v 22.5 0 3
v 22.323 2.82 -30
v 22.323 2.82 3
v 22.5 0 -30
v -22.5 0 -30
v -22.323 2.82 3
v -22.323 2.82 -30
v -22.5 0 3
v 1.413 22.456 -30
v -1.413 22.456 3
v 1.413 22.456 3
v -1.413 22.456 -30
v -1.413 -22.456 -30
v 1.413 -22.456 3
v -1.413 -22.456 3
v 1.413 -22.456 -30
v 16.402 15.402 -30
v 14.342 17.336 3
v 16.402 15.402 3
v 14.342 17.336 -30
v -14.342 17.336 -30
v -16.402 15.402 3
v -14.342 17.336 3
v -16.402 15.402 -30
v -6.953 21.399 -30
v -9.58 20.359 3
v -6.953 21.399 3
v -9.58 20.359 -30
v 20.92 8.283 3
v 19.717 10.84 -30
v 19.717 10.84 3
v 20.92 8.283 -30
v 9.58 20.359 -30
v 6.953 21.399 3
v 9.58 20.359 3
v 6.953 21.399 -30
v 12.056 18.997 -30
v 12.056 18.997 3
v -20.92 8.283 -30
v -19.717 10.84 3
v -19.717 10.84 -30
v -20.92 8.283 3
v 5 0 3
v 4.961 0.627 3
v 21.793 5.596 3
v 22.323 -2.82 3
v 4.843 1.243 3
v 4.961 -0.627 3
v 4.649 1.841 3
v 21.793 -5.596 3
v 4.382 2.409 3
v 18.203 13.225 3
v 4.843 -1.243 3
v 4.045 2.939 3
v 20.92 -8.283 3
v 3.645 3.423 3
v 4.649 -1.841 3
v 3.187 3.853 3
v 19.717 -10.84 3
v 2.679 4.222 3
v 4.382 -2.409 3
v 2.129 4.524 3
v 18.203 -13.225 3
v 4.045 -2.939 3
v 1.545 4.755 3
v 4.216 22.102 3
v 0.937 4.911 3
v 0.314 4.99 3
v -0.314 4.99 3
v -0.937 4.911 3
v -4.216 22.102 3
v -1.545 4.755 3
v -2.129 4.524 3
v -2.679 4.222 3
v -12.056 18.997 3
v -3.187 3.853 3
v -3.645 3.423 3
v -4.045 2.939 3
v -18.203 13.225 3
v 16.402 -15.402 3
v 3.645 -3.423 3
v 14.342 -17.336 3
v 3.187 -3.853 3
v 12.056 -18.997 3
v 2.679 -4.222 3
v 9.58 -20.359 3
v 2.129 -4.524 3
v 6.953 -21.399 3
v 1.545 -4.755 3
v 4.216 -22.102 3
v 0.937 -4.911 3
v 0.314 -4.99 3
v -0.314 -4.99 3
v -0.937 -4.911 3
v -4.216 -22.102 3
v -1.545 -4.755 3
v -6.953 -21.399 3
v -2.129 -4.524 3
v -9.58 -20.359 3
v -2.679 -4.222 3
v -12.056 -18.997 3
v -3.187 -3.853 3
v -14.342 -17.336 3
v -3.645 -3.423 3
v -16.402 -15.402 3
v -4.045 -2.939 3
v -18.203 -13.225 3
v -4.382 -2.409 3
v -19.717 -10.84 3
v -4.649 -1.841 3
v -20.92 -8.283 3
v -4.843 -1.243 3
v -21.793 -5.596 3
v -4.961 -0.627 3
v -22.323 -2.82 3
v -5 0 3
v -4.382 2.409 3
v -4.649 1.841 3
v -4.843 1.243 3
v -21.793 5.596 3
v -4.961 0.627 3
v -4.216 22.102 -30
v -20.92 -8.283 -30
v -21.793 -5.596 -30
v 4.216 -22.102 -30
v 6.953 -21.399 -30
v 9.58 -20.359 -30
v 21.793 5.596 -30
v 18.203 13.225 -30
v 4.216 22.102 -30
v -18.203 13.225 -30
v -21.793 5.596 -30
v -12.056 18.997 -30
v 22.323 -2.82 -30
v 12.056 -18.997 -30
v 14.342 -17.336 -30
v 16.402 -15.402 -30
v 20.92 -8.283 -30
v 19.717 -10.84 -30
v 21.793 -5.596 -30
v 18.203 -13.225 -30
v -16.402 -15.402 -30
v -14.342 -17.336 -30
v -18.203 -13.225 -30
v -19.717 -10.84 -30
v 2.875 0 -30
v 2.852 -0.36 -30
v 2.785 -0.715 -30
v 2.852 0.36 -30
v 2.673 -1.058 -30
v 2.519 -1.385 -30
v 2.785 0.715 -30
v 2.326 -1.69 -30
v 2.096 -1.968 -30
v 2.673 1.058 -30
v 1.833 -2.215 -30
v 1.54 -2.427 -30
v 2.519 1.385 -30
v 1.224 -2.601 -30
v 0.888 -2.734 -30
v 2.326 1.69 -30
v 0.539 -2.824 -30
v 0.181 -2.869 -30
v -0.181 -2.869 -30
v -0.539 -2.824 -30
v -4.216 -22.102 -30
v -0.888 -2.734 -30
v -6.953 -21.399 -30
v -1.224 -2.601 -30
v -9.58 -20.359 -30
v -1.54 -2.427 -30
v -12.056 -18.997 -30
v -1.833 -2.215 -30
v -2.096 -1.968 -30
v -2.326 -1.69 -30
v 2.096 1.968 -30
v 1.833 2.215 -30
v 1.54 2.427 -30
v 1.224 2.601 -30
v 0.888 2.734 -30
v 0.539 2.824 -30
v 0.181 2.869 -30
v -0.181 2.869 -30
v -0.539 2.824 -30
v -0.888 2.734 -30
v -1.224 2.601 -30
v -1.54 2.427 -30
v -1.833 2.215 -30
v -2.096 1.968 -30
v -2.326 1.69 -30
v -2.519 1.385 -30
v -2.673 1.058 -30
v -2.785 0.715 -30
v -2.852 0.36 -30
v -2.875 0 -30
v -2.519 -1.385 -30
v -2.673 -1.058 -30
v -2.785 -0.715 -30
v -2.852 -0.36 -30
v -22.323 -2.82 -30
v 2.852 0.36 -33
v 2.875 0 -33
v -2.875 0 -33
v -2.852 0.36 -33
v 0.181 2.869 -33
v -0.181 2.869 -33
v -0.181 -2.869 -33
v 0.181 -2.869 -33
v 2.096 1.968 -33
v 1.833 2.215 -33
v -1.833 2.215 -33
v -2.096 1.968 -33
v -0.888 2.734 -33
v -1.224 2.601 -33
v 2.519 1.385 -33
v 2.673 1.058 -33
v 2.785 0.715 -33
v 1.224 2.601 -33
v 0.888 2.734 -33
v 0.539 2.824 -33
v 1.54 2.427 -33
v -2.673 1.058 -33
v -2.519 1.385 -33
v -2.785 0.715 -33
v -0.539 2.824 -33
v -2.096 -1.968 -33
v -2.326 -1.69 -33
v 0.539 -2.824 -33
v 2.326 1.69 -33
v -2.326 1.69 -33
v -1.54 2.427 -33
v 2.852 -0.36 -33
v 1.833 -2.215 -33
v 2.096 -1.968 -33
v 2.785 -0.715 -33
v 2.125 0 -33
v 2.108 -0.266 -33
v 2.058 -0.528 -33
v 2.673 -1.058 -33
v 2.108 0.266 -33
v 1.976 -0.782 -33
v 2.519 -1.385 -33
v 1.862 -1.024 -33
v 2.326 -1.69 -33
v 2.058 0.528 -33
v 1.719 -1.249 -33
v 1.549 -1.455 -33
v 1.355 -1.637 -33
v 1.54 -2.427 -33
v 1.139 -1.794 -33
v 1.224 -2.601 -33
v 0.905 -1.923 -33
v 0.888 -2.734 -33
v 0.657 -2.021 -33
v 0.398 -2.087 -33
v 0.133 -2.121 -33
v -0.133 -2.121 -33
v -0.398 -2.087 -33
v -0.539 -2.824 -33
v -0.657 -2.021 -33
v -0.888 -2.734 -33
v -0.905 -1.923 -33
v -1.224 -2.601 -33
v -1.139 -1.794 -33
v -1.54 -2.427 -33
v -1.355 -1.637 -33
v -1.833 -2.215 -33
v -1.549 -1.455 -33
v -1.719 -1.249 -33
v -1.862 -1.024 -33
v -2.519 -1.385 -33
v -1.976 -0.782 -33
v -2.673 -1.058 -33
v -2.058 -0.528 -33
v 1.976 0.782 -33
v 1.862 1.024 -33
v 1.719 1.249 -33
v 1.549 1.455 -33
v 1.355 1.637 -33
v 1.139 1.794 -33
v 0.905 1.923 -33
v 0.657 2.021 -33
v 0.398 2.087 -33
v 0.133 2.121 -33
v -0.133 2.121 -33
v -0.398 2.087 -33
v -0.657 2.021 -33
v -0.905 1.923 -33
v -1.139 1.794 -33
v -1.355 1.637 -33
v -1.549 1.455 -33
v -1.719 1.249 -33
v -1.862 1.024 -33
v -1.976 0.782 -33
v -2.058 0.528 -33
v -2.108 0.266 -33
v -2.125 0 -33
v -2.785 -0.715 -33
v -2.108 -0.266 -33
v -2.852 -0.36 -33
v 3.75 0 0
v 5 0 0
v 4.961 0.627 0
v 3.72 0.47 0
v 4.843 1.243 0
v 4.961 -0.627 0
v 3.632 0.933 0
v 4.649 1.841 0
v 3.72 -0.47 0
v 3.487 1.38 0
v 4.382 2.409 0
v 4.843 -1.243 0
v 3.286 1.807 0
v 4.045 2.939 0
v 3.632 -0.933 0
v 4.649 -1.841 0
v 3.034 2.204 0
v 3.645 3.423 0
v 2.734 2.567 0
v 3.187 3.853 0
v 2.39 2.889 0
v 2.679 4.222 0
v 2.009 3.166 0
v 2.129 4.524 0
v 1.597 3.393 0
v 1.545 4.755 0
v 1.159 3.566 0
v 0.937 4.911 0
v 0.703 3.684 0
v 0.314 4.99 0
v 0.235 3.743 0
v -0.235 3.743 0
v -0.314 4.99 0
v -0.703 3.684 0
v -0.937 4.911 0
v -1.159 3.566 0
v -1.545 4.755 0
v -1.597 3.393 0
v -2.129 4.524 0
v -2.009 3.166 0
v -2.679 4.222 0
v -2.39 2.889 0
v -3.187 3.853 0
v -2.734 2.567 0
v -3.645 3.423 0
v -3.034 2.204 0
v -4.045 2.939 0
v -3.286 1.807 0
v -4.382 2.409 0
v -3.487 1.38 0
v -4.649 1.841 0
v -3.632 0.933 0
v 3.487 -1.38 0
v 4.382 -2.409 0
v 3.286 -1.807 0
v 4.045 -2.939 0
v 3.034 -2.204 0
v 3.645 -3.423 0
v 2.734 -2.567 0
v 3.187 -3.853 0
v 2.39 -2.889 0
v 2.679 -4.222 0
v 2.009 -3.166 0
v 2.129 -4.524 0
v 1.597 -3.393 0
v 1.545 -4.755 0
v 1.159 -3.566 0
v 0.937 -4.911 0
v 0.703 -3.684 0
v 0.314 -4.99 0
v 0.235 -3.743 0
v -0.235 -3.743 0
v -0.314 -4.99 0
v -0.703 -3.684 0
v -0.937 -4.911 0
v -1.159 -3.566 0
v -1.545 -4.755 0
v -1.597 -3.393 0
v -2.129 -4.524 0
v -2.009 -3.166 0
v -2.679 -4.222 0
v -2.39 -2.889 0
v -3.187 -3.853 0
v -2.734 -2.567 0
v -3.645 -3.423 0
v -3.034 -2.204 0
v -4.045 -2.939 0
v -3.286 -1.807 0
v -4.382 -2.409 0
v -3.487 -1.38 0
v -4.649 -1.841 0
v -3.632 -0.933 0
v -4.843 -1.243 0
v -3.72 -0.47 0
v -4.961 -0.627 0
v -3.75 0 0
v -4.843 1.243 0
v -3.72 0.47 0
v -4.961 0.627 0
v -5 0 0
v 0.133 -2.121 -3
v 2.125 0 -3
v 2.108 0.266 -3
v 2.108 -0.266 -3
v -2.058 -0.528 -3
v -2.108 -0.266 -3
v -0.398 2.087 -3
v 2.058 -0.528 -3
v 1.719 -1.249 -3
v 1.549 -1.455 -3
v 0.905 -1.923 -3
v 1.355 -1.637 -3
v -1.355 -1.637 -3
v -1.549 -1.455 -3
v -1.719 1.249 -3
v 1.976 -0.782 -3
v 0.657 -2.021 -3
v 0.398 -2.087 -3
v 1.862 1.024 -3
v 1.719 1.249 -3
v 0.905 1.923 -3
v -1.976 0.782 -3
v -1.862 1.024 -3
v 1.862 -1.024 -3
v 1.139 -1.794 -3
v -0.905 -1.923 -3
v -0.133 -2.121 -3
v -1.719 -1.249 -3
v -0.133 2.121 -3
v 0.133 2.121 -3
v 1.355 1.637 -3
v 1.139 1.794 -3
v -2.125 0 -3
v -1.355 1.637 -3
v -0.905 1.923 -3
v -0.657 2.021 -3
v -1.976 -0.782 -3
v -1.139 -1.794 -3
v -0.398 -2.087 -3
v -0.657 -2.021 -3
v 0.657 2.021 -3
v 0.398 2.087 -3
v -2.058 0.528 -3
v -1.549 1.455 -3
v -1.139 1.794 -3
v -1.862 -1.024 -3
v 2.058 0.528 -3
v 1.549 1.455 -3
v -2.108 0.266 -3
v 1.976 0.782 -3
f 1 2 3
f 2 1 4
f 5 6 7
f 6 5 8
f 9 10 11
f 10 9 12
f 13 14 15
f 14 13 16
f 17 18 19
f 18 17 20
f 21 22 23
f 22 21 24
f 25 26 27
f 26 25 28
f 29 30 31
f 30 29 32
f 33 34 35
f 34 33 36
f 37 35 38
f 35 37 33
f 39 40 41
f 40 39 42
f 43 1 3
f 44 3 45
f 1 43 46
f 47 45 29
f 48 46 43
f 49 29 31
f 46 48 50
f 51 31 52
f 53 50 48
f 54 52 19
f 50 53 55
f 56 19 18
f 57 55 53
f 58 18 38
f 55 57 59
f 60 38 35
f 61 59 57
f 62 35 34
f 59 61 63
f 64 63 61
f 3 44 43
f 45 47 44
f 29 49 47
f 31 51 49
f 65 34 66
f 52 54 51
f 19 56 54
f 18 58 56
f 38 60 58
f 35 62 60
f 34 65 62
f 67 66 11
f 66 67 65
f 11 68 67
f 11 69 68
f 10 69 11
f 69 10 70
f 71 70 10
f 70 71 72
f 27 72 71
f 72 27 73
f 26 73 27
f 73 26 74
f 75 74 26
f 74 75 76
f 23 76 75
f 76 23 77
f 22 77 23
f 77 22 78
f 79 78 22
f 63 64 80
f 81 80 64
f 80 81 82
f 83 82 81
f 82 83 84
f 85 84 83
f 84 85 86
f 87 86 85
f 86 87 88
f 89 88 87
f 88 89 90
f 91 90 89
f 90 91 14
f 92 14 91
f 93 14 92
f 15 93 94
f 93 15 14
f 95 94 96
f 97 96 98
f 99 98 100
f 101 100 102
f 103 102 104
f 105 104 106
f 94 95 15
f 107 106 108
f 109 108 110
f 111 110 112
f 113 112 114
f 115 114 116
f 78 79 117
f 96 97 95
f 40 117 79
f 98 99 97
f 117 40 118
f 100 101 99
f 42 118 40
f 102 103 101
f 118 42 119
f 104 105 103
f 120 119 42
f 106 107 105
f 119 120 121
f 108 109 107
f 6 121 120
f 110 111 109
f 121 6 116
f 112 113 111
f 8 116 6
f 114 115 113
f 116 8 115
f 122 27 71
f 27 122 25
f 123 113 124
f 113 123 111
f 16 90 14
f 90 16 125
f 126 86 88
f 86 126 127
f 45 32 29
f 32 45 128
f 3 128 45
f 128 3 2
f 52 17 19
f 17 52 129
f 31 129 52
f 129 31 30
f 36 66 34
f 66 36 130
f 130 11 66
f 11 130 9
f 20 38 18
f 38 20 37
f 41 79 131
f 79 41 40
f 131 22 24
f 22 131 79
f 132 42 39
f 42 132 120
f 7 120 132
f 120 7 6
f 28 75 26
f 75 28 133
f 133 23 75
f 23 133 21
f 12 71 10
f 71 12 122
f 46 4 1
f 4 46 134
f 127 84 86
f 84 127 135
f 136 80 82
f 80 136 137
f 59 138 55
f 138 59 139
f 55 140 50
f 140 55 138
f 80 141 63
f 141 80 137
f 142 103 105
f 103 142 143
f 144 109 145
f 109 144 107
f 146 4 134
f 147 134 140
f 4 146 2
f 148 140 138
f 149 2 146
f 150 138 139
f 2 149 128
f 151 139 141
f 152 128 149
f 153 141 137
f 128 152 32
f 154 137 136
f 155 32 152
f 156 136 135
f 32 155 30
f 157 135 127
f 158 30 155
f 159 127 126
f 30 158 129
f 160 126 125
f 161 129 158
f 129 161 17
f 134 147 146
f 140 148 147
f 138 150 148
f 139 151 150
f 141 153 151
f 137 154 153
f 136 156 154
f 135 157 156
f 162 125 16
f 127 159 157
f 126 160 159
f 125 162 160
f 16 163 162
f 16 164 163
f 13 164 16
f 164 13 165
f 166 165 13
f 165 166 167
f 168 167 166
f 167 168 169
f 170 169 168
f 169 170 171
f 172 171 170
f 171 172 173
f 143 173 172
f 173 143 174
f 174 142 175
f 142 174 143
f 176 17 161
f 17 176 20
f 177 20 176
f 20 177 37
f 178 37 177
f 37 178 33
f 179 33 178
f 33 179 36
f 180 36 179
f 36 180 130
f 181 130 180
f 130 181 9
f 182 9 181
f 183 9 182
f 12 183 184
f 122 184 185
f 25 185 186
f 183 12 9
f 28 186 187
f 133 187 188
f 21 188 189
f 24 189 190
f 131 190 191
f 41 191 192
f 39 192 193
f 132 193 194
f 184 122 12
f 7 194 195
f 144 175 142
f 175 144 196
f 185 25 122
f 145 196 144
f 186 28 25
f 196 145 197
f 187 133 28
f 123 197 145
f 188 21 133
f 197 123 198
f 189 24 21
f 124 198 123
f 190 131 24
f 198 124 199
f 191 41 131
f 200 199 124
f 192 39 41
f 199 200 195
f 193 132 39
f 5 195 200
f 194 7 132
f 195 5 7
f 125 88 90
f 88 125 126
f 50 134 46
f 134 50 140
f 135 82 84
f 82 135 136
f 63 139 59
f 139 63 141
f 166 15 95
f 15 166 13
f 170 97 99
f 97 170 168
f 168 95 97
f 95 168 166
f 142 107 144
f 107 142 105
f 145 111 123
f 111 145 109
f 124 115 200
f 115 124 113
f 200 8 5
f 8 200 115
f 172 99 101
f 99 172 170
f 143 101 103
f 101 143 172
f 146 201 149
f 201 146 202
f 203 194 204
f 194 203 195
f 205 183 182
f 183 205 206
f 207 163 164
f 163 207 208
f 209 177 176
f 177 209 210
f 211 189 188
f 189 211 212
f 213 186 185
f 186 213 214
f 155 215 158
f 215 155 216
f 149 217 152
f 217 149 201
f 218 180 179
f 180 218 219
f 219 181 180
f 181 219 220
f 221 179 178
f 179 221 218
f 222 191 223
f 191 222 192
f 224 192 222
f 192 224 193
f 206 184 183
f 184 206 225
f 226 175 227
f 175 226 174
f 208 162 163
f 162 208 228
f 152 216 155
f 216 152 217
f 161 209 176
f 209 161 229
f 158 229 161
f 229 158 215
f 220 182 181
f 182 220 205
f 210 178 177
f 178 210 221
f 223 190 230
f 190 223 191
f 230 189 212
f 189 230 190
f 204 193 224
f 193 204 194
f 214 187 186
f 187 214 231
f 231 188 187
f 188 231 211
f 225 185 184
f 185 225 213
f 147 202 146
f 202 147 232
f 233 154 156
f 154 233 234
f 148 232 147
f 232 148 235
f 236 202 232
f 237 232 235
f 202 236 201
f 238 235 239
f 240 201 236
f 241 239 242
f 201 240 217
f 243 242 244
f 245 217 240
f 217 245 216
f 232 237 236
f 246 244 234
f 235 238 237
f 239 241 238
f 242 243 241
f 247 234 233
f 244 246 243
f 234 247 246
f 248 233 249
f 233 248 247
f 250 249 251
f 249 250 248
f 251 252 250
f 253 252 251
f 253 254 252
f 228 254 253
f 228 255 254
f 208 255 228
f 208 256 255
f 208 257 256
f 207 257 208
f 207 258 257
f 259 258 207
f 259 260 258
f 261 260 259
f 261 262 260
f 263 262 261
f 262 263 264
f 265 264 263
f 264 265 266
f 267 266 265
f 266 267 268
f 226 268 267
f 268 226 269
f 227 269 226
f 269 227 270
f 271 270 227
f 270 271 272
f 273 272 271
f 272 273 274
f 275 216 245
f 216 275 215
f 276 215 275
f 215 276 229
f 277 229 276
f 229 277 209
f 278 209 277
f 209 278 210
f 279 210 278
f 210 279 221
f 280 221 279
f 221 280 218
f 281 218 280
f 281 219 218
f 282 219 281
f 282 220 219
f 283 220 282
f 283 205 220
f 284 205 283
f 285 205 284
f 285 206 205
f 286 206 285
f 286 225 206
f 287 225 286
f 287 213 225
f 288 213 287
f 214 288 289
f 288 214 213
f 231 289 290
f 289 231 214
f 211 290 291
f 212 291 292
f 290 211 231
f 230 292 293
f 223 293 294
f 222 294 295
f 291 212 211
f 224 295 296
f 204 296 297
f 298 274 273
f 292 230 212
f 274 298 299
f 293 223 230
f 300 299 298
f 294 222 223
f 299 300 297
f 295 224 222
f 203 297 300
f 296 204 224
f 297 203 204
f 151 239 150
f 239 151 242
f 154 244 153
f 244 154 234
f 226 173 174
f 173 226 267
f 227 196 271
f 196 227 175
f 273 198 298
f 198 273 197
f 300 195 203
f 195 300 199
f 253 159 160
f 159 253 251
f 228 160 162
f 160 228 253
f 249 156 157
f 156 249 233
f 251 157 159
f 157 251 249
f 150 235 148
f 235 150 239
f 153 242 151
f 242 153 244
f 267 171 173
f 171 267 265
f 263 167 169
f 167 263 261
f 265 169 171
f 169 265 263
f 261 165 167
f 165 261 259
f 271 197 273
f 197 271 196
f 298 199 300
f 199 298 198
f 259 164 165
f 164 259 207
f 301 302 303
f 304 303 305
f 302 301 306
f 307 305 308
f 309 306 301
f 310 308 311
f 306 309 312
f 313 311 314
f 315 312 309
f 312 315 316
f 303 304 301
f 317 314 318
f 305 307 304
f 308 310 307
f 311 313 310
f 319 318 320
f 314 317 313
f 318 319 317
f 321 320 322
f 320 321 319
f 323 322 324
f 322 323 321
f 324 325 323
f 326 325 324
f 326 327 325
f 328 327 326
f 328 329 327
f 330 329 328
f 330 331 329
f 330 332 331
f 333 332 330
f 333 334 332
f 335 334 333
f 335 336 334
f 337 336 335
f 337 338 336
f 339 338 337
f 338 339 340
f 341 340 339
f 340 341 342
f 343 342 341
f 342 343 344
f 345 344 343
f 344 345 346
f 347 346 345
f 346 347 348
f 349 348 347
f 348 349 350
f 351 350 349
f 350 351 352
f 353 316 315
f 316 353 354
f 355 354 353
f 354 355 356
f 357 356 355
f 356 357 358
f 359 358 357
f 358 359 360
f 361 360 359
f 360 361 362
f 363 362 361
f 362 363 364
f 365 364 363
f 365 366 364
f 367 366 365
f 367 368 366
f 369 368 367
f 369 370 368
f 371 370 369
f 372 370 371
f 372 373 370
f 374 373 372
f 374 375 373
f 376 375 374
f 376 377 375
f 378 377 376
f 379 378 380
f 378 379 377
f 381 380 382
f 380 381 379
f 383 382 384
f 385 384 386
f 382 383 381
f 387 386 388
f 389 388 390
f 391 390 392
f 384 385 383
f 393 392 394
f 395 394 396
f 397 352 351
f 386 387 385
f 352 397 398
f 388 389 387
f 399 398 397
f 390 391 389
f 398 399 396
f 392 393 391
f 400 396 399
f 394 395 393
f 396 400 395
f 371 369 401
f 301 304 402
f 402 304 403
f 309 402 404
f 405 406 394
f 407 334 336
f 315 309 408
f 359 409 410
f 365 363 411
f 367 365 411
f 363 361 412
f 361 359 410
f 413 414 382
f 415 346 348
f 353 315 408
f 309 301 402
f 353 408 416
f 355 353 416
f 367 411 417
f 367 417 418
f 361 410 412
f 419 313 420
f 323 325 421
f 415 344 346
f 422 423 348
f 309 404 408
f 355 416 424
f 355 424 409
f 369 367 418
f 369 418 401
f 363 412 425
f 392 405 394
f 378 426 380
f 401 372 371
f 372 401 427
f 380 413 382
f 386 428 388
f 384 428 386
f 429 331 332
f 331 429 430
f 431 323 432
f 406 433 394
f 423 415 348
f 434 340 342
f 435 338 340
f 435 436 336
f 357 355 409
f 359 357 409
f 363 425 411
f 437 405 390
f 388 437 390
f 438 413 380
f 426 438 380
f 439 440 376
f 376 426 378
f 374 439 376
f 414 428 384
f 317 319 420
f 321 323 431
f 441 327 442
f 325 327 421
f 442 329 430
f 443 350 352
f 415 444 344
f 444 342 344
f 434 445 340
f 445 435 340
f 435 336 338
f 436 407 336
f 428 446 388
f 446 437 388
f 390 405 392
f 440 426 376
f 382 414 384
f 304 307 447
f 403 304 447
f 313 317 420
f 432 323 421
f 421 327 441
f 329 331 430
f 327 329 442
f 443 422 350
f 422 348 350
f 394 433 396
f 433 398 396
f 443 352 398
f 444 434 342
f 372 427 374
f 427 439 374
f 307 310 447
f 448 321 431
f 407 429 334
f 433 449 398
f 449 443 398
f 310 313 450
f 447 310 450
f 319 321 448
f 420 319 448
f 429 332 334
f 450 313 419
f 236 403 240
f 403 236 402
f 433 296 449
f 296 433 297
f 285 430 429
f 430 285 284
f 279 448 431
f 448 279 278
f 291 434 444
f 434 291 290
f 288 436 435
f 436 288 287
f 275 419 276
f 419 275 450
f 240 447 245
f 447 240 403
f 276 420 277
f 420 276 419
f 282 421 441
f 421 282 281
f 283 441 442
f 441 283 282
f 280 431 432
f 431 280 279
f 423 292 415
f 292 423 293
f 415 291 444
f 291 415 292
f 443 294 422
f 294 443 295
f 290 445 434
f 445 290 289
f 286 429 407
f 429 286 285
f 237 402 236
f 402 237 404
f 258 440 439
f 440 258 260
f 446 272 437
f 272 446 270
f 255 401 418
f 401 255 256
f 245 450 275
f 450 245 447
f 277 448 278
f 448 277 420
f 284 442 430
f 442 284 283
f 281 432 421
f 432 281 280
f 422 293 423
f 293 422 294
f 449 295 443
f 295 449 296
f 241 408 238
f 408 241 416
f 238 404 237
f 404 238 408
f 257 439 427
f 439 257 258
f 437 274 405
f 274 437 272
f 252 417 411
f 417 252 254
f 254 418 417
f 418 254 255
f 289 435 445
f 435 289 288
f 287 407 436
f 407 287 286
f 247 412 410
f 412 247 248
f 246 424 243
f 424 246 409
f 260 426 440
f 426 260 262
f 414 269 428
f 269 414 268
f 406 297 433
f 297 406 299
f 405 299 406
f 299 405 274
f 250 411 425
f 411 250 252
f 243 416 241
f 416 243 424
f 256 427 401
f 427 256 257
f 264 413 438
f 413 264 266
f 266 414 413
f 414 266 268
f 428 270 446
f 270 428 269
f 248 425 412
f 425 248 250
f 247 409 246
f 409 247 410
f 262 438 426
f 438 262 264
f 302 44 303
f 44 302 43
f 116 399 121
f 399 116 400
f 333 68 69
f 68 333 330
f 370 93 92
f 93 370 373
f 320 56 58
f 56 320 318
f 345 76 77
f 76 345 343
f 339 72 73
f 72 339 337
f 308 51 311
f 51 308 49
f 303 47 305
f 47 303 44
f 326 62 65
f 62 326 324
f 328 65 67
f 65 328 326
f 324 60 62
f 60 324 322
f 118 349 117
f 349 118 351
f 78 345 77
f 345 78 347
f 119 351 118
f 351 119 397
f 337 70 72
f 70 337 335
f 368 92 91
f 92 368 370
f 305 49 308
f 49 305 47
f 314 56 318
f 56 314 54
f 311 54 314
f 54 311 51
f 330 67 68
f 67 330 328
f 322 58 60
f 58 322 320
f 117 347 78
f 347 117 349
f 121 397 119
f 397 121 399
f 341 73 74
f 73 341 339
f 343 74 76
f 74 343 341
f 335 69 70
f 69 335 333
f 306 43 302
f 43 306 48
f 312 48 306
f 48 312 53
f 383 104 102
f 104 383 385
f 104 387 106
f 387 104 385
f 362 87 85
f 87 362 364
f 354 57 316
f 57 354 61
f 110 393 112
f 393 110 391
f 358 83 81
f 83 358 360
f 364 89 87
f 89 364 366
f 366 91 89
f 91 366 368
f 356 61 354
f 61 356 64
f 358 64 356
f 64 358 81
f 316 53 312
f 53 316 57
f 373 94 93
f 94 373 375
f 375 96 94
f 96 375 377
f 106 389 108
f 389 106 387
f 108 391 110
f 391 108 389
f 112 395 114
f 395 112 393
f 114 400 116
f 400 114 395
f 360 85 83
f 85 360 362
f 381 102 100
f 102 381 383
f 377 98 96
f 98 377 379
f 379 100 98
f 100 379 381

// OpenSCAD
$fn = 50;

difference() {
	union() {
		translate(v = [0, 0, -30.0]) {
			cylinder(h = 33, r = 22.5);
		}
		#translate(v = [0, 0, -33.0]) {
			cylinder(h = 33, r = 2.875);
		}
	}
	union() {
		translate(v = [0, 0, 0]) {
			rotate(a = [0, 0, 0]) {
				difference() {
					union() {
						translate(v = [0, 0, -33.0]) {
							cylinder(h = 33, r = 2.0);
						}
						translate(v = [0, 0, -3]) {
							cylinder(h = 3, r1 = 2.125, r2 = 3.75);
						}
						translate(v = [0, 0, -33.0]) {
							cylinder(h = 33, r = 2.125);
						}
						translate(v = [0, 0, -33.0]) {
							cylinder(h = 33, r = 2.0);
						}
					}
					union();
				}
			}
		}
		#cylinder(h = 3, r = 5.0);
	}
}
